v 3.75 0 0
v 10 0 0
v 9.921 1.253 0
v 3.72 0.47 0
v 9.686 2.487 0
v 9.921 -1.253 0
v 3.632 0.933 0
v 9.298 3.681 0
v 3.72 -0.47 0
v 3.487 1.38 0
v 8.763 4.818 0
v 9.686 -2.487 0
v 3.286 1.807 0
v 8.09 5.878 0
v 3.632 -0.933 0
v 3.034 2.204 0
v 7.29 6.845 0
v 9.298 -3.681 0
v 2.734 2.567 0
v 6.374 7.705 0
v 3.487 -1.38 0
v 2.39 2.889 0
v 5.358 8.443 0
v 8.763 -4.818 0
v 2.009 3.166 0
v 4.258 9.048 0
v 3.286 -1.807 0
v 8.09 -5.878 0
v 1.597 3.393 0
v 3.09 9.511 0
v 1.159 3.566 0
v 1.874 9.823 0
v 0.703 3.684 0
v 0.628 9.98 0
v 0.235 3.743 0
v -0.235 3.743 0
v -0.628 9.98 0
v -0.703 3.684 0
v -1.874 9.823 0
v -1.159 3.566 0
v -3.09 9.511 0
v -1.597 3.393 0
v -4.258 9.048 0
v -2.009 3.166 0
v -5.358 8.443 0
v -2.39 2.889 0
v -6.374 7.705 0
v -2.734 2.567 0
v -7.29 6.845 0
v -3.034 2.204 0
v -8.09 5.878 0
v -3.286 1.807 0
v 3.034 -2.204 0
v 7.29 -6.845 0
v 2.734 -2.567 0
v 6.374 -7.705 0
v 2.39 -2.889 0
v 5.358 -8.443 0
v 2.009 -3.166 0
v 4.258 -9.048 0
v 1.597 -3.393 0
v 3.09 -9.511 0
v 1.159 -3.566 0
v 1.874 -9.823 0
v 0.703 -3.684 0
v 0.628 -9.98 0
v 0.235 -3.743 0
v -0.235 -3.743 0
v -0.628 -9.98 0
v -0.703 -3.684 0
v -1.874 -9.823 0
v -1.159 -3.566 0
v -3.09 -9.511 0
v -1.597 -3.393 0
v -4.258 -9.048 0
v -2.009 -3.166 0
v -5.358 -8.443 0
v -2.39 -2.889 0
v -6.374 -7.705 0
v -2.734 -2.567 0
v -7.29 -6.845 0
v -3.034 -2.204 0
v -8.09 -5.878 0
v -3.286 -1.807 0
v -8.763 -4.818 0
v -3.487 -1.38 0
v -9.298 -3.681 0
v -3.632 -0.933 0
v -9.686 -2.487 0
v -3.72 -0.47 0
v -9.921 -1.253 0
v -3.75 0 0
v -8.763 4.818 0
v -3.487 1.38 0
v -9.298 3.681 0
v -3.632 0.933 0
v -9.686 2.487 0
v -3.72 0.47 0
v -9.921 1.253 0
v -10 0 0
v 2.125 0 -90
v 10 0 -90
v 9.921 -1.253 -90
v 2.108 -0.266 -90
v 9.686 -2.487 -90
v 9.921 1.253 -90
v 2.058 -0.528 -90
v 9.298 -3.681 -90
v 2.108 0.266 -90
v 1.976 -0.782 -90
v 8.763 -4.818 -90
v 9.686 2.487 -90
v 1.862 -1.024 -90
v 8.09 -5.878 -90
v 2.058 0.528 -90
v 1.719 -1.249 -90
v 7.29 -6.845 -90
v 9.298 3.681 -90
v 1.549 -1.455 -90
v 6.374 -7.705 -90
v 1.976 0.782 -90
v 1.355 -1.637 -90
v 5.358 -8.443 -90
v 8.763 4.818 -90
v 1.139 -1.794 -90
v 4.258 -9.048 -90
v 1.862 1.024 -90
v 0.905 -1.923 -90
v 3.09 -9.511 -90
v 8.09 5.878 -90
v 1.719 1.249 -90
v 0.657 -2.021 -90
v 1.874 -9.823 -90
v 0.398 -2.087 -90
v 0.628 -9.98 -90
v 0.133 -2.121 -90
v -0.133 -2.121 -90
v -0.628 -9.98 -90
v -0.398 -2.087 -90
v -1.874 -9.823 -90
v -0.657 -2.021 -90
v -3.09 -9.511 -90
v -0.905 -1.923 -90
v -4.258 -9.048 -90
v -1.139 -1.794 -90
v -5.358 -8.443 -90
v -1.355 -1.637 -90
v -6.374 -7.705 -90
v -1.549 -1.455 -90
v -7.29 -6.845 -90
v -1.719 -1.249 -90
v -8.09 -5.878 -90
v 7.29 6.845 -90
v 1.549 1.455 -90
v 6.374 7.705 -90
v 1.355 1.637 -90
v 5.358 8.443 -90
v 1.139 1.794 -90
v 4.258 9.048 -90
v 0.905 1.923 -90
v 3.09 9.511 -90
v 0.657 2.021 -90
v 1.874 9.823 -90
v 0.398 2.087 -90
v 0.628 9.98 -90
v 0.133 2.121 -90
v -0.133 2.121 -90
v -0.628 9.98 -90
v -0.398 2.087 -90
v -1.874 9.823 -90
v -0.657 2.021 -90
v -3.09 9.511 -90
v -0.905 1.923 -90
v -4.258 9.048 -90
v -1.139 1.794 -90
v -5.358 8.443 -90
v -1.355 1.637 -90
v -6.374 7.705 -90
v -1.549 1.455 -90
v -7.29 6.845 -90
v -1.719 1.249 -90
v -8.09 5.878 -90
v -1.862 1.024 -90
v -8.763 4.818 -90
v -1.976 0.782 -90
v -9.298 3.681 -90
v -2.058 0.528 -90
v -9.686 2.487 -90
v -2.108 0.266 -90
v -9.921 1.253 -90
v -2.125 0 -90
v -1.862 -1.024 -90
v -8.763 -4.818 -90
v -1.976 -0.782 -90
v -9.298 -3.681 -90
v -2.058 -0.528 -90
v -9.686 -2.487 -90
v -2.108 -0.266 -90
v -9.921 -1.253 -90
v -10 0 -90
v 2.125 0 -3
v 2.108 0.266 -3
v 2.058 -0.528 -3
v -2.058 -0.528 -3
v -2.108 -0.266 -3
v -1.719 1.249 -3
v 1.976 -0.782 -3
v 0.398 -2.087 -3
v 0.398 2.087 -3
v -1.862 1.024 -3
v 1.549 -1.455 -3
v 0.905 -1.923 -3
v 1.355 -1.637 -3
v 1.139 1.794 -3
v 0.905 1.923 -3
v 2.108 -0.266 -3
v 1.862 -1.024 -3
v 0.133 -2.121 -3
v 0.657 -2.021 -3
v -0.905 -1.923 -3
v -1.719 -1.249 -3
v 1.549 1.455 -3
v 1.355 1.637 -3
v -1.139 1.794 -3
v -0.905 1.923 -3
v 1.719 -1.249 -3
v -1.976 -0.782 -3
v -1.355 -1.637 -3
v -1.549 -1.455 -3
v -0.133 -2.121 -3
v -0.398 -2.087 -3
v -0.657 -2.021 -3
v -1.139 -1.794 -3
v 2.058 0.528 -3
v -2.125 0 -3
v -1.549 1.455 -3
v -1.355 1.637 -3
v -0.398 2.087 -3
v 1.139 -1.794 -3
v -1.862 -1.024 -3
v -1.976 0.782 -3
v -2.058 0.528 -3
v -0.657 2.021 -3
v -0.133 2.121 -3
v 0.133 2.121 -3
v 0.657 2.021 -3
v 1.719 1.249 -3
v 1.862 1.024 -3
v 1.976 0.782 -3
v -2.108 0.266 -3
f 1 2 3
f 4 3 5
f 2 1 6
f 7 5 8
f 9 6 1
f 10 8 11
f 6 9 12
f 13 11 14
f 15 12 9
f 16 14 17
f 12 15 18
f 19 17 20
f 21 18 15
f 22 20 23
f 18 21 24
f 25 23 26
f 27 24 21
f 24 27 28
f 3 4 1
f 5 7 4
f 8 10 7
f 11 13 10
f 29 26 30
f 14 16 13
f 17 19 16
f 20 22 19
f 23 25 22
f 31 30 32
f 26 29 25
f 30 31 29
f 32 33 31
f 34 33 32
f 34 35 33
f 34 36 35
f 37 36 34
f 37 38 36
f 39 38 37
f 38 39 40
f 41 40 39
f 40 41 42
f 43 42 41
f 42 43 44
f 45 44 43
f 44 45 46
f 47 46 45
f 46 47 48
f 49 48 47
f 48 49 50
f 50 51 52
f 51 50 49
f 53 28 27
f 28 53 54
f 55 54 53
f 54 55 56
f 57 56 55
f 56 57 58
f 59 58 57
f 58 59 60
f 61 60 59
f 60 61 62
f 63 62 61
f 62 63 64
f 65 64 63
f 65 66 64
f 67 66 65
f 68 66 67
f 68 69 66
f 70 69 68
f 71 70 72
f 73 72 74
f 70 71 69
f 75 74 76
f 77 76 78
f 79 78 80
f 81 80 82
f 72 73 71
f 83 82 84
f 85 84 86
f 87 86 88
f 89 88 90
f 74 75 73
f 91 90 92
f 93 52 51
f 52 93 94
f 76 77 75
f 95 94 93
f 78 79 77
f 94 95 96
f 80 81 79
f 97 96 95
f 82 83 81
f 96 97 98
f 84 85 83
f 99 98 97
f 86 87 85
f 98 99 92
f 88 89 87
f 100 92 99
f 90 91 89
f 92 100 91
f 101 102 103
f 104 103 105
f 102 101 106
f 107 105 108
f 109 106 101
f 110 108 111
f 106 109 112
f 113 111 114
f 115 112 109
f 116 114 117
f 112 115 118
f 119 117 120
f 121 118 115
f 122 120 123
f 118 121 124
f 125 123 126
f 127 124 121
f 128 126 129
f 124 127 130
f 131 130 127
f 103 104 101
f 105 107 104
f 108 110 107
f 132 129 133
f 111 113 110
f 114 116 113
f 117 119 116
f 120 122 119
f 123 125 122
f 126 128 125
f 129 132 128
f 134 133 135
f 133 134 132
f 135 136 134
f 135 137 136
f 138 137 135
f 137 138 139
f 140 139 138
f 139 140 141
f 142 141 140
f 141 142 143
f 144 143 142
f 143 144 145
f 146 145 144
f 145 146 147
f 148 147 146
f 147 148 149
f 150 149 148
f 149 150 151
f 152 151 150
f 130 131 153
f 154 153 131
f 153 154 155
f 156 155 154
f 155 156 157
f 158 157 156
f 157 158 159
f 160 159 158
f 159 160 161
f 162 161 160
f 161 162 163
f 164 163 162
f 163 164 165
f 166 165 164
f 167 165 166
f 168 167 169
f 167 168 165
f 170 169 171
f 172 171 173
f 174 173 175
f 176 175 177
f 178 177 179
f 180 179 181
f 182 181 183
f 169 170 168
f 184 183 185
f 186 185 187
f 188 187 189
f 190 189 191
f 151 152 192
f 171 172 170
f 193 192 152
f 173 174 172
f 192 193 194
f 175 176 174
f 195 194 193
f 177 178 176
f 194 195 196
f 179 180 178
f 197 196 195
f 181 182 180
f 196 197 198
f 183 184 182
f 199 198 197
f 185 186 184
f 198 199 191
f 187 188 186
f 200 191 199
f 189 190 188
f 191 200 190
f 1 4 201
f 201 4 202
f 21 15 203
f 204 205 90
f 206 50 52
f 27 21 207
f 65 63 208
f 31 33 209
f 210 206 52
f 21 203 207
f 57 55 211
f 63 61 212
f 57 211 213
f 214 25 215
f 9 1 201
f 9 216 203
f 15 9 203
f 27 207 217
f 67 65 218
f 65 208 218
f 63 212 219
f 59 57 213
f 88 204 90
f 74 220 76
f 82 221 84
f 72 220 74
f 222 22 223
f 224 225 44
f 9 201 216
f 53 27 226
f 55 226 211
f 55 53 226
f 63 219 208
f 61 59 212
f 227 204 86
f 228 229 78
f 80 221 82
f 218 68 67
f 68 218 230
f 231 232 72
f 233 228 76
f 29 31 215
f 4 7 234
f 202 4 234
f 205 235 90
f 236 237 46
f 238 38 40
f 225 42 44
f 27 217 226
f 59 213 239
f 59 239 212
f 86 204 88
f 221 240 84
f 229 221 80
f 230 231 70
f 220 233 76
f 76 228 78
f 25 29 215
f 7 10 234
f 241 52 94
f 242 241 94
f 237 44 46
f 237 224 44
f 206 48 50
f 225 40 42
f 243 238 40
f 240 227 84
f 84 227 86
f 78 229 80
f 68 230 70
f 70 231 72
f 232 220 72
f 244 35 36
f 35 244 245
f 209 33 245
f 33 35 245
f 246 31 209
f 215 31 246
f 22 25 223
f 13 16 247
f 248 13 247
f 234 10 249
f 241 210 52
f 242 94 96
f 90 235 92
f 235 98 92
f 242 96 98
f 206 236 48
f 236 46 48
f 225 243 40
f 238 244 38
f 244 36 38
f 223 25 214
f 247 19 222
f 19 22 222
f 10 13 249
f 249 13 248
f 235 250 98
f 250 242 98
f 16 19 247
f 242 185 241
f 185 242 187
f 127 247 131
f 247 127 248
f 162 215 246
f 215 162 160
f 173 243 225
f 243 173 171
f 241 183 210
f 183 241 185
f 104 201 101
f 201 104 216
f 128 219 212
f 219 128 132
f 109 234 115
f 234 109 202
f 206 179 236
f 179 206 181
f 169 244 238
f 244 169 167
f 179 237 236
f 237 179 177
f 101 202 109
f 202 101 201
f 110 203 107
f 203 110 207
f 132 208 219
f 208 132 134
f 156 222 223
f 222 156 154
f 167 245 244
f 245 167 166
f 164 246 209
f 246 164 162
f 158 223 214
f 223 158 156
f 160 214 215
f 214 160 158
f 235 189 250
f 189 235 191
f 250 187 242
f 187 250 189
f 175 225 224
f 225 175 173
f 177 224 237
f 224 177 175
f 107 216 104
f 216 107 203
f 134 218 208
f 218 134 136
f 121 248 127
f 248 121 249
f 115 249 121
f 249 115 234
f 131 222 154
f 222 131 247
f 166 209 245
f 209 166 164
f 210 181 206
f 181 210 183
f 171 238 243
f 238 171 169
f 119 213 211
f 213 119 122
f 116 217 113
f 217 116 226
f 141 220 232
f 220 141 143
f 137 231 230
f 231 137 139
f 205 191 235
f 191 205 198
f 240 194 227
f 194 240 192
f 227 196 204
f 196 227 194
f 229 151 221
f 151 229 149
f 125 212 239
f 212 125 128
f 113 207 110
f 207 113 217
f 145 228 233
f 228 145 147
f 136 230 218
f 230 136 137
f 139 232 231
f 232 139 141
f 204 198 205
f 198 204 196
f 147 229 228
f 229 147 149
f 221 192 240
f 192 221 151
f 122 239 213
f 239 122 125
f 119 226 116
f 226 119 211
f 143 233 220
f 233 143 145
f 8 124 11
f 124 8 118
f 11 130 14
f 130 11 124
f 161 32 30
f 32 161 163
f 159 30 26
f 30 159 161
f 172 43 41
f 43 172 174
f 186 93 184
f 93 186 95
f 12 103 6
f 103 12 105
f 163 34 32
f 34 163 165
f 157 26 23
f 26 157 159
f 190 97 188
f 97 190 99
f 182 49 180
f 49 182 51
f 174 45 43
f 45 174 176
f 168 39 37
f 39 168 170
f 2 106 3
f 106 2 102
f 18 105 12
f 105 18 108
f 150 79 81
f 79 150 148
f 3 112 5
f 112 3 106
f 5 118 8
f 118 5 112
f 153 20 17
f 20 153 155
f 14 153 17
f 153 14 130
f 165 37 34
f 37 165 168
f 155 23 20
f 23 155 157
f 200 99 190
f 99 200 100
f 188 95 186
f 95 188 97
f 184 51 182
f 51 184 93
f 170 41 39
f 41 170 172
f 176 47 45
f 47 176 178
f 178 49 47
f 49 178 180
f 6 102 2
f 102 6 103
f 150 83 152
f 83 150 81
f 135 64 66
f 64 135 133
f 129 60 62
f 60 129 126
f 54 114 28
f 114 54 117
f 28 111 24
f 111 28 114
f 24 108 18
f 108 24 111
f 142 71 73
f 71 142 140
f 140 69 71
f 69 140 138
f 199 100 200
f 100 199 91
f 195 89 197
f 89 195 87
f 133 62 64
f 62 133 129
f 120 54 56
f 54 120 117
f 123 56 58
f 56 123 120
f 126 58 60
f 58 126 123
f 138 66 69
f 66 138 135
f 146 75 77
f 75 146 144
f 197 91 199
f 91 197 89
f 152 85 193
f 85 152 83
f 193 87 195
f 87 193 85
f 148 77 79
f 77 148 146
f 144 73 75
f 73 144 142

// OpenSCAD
$fn = 50;


difference() {
	union() {
		translate(v = [0, 0, -90.0000000000]) {
			cylinder(h = 90, r = 10.0000000000);
		}
		cylinder(h = 0, r = 13.0000000000);
	}
	union() {
		translate(v = [0, 0, 0]) {
			rotate(a = [0, 0, 0]) {
				difference() {
					union() {
						#translate(v = [0, 0, -90.0000000000]) {
							cylinder(h = 90, r = 2.0000000000);
						}
						#translate(v = [0, 0, -3]) {
							cylinder(h = 3, r = 10.0000000000, r1 = 2.1250000000, r2 = 3.7500000000);
						}
						#translate(v = [0, 0, -90.0000000000]) {
							cylinder(h = 90, r = 2.1250000000);
						}
						#translate(v = [0, 0, -90.0000000000]) {
							cylinder(h = 90, r = 2.0000000000);
						}
					}
					union();
				}
			}
		}
	}
}
